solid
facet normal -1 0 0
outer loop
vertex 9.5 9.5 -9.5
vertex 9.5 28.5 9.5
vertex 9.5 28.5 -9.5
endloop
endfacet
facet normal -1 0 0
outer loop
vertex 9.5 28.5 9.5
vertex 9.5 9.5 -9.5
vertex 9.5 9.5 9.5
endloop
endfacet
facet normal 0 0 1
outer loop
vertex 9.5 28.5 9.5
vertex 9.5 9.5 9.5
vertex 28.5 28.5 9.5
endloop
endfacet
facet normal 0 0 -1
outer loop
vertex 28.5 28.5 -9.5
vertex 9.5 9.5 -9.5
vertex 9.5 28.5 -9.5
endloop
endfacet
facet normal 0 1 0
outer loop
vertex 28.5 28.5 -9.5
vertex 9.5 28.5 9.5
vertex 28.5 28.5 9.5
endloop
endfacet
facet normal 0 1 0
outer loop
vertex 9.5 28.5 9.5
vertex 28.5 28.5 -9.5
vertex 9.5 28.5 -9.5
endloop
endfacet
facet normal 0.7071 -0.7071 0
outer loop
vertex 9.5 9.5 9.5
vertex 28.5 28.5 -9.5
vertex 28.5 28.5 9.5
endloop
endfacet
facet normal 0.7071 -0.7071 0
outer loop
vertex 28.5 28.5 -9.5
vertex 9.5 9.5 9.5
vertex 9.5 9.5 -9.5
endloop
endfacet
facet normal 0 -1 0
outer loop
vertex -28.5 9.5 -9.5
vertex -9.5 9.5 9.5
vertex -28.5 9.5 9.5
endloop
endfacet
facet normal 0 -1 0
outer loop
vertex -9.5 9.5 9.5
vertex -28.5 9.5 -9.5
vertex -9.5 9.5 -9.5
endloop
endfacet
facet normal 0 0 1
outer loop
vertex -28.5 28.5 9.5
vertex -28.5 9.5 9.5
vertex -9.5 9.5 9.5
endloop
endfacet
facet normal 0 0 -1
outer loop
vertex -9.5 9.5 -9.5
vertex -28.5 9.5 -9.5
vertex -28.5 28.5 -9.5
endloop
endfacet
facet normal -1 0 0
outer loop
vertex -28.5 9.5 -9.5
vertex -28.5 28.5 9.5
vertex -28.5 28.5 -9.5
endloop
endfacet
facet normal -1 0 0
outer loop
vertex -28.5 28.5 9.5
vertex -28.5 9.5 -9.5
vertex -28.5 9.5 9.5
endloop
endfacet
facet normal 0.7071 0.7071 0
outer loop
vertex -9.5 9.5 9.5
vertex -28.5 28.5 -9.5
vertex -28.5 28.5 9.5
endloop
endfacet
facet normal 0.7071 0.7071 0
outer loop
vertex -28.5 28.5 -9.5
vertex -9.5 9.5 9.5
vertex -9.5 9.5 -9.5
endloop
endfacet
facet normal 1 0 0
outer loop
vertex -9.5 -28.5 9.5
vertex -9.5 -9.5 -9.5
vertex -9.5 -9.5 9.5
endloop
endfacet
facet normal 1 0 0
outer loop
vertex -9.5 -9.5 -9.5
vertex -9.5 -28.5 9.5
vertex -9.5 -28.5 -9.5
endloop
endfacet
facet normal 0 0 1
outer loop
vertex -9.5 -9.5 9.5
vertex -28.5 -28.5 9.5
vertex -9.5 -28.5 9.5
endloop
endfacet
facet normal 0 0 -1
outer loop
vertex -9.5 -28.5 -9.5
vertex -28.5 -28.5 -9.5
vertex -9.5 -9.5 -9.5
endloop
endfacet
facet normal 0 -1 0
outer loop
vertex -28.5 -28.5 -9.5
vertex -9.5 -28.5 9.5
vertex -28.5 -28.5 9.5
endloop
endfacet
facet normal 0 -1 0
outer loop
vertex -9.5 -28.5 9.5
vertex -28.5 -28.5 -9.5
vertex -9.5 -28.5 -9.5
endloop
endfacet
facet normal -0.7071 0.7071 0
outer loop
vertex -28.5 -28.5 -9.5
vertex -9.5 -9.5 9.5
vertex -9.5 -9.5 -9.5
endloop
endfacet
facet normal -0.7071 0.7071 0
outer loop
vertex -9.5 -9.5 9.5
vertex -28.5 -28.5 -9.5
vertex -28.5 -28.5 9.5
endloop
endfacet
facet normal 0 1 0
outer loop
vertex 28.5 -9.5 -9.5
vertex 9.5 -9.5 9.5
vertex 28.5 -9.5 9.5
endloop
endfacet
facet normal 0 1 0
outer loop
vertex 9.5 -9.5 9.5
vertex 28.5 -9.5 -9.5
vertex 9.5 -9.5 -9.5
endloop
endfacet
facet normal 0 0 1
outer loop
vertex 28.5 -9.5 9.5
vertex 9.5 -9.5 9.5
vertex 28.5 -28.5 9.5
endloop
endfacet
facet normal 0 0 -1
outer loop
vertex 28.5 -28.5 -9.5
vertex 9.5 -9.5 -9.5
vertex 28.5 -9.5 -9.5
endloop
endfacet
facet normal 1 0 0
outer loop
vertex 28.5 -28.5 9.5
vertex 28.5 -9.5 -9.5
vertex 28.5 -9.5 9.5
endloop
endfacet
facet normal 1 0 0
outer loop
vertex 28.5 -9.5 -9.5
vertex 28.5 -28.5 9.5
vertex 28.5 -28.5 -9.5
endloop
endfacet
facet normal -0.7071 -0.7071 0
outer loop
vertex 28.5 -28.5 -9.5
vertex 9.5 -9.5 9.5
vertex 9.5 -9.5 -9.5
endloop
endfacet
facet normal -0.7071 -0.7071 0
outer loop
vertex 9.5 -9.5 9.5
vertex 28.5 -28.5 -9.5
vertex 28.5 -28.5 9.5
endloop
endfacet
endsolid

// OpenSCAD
// file: def.scad
block_size_3 = 19;
block_size_4 = 16;
block_size_5 = 14;
block_size_6 = 12.5;
block_size_7 = 11;
block_size_8 = 10;

inf = 1000;

round_radius = 1;
sticker_margin = 2.5;
sticker_round_radius = 0.75;

module _block(size) {
    minkowski() {
        cube([size - round_radius * 2, size - round_radius * 2, size - round_radius * 2], center = true);
        sphere(r = round_radius, $fn = 24);
    }
}

module _selector_0(size) {
    cube([size - 0.2, size - 0.2, size - 0.2], center = true);
}

module _sticker(size) {
    minkowski() {
        cube([size - sticker_margin * 2, size - sticker_margin * 2, 0.1], center = true);
        cylinder(r = sticker_round_radius, h = 0.1, $fn = 24);
    }
}

module _selector_corner_cw(size) {
    difference() {
        cube([size, size, size], center = true);
        rotate([0, -45, 0])
            translate([-inf, -inf, 0])
                cube([inf * 2, inf * 2, inf]);
        rotate([90, 0, 45])
            translate([-inf, -inf, 0])
                cube([inf * 2, inf * 2, inf]);
    }
}

module _selector_corner_ccw(size) {
    difference() {
        cube([size, size, size], center = true);
        rotate([45, 0, 0])
            translate([-inf, -inf, 0])
                cube([inf * 2, inf * 2, inf]);
        rotate([0, -90, -45])
            translate([-inf, -inf, 0])
                cube([inf * 2, inf * 2, inf]);
    }
}

module _selector_edge_cw(size) {
    difference() {
        cube([size, size, size], center = true);
        rotate([90, 0, 45])
            translate([-inf, -inf, 0])
                cube([inf * 2, inf * 2, inf]);
    }
}

module _selector_edge_ccw(size) {
    difference() {
        cube([size, size, size], center = true);
        rotate([0, -90, -45])
            translate([-inf, -inf, 0])
                cube([inf * 2, inf * 2, inf]);
    }
}
// main file
include <def.scad>

for (deg = [0 : 90 : 270])
    rotate([0, 0, deg])
        translate([block_size_3, block_size_3, 0])
            _selector_edge_cw(block_size_3);
